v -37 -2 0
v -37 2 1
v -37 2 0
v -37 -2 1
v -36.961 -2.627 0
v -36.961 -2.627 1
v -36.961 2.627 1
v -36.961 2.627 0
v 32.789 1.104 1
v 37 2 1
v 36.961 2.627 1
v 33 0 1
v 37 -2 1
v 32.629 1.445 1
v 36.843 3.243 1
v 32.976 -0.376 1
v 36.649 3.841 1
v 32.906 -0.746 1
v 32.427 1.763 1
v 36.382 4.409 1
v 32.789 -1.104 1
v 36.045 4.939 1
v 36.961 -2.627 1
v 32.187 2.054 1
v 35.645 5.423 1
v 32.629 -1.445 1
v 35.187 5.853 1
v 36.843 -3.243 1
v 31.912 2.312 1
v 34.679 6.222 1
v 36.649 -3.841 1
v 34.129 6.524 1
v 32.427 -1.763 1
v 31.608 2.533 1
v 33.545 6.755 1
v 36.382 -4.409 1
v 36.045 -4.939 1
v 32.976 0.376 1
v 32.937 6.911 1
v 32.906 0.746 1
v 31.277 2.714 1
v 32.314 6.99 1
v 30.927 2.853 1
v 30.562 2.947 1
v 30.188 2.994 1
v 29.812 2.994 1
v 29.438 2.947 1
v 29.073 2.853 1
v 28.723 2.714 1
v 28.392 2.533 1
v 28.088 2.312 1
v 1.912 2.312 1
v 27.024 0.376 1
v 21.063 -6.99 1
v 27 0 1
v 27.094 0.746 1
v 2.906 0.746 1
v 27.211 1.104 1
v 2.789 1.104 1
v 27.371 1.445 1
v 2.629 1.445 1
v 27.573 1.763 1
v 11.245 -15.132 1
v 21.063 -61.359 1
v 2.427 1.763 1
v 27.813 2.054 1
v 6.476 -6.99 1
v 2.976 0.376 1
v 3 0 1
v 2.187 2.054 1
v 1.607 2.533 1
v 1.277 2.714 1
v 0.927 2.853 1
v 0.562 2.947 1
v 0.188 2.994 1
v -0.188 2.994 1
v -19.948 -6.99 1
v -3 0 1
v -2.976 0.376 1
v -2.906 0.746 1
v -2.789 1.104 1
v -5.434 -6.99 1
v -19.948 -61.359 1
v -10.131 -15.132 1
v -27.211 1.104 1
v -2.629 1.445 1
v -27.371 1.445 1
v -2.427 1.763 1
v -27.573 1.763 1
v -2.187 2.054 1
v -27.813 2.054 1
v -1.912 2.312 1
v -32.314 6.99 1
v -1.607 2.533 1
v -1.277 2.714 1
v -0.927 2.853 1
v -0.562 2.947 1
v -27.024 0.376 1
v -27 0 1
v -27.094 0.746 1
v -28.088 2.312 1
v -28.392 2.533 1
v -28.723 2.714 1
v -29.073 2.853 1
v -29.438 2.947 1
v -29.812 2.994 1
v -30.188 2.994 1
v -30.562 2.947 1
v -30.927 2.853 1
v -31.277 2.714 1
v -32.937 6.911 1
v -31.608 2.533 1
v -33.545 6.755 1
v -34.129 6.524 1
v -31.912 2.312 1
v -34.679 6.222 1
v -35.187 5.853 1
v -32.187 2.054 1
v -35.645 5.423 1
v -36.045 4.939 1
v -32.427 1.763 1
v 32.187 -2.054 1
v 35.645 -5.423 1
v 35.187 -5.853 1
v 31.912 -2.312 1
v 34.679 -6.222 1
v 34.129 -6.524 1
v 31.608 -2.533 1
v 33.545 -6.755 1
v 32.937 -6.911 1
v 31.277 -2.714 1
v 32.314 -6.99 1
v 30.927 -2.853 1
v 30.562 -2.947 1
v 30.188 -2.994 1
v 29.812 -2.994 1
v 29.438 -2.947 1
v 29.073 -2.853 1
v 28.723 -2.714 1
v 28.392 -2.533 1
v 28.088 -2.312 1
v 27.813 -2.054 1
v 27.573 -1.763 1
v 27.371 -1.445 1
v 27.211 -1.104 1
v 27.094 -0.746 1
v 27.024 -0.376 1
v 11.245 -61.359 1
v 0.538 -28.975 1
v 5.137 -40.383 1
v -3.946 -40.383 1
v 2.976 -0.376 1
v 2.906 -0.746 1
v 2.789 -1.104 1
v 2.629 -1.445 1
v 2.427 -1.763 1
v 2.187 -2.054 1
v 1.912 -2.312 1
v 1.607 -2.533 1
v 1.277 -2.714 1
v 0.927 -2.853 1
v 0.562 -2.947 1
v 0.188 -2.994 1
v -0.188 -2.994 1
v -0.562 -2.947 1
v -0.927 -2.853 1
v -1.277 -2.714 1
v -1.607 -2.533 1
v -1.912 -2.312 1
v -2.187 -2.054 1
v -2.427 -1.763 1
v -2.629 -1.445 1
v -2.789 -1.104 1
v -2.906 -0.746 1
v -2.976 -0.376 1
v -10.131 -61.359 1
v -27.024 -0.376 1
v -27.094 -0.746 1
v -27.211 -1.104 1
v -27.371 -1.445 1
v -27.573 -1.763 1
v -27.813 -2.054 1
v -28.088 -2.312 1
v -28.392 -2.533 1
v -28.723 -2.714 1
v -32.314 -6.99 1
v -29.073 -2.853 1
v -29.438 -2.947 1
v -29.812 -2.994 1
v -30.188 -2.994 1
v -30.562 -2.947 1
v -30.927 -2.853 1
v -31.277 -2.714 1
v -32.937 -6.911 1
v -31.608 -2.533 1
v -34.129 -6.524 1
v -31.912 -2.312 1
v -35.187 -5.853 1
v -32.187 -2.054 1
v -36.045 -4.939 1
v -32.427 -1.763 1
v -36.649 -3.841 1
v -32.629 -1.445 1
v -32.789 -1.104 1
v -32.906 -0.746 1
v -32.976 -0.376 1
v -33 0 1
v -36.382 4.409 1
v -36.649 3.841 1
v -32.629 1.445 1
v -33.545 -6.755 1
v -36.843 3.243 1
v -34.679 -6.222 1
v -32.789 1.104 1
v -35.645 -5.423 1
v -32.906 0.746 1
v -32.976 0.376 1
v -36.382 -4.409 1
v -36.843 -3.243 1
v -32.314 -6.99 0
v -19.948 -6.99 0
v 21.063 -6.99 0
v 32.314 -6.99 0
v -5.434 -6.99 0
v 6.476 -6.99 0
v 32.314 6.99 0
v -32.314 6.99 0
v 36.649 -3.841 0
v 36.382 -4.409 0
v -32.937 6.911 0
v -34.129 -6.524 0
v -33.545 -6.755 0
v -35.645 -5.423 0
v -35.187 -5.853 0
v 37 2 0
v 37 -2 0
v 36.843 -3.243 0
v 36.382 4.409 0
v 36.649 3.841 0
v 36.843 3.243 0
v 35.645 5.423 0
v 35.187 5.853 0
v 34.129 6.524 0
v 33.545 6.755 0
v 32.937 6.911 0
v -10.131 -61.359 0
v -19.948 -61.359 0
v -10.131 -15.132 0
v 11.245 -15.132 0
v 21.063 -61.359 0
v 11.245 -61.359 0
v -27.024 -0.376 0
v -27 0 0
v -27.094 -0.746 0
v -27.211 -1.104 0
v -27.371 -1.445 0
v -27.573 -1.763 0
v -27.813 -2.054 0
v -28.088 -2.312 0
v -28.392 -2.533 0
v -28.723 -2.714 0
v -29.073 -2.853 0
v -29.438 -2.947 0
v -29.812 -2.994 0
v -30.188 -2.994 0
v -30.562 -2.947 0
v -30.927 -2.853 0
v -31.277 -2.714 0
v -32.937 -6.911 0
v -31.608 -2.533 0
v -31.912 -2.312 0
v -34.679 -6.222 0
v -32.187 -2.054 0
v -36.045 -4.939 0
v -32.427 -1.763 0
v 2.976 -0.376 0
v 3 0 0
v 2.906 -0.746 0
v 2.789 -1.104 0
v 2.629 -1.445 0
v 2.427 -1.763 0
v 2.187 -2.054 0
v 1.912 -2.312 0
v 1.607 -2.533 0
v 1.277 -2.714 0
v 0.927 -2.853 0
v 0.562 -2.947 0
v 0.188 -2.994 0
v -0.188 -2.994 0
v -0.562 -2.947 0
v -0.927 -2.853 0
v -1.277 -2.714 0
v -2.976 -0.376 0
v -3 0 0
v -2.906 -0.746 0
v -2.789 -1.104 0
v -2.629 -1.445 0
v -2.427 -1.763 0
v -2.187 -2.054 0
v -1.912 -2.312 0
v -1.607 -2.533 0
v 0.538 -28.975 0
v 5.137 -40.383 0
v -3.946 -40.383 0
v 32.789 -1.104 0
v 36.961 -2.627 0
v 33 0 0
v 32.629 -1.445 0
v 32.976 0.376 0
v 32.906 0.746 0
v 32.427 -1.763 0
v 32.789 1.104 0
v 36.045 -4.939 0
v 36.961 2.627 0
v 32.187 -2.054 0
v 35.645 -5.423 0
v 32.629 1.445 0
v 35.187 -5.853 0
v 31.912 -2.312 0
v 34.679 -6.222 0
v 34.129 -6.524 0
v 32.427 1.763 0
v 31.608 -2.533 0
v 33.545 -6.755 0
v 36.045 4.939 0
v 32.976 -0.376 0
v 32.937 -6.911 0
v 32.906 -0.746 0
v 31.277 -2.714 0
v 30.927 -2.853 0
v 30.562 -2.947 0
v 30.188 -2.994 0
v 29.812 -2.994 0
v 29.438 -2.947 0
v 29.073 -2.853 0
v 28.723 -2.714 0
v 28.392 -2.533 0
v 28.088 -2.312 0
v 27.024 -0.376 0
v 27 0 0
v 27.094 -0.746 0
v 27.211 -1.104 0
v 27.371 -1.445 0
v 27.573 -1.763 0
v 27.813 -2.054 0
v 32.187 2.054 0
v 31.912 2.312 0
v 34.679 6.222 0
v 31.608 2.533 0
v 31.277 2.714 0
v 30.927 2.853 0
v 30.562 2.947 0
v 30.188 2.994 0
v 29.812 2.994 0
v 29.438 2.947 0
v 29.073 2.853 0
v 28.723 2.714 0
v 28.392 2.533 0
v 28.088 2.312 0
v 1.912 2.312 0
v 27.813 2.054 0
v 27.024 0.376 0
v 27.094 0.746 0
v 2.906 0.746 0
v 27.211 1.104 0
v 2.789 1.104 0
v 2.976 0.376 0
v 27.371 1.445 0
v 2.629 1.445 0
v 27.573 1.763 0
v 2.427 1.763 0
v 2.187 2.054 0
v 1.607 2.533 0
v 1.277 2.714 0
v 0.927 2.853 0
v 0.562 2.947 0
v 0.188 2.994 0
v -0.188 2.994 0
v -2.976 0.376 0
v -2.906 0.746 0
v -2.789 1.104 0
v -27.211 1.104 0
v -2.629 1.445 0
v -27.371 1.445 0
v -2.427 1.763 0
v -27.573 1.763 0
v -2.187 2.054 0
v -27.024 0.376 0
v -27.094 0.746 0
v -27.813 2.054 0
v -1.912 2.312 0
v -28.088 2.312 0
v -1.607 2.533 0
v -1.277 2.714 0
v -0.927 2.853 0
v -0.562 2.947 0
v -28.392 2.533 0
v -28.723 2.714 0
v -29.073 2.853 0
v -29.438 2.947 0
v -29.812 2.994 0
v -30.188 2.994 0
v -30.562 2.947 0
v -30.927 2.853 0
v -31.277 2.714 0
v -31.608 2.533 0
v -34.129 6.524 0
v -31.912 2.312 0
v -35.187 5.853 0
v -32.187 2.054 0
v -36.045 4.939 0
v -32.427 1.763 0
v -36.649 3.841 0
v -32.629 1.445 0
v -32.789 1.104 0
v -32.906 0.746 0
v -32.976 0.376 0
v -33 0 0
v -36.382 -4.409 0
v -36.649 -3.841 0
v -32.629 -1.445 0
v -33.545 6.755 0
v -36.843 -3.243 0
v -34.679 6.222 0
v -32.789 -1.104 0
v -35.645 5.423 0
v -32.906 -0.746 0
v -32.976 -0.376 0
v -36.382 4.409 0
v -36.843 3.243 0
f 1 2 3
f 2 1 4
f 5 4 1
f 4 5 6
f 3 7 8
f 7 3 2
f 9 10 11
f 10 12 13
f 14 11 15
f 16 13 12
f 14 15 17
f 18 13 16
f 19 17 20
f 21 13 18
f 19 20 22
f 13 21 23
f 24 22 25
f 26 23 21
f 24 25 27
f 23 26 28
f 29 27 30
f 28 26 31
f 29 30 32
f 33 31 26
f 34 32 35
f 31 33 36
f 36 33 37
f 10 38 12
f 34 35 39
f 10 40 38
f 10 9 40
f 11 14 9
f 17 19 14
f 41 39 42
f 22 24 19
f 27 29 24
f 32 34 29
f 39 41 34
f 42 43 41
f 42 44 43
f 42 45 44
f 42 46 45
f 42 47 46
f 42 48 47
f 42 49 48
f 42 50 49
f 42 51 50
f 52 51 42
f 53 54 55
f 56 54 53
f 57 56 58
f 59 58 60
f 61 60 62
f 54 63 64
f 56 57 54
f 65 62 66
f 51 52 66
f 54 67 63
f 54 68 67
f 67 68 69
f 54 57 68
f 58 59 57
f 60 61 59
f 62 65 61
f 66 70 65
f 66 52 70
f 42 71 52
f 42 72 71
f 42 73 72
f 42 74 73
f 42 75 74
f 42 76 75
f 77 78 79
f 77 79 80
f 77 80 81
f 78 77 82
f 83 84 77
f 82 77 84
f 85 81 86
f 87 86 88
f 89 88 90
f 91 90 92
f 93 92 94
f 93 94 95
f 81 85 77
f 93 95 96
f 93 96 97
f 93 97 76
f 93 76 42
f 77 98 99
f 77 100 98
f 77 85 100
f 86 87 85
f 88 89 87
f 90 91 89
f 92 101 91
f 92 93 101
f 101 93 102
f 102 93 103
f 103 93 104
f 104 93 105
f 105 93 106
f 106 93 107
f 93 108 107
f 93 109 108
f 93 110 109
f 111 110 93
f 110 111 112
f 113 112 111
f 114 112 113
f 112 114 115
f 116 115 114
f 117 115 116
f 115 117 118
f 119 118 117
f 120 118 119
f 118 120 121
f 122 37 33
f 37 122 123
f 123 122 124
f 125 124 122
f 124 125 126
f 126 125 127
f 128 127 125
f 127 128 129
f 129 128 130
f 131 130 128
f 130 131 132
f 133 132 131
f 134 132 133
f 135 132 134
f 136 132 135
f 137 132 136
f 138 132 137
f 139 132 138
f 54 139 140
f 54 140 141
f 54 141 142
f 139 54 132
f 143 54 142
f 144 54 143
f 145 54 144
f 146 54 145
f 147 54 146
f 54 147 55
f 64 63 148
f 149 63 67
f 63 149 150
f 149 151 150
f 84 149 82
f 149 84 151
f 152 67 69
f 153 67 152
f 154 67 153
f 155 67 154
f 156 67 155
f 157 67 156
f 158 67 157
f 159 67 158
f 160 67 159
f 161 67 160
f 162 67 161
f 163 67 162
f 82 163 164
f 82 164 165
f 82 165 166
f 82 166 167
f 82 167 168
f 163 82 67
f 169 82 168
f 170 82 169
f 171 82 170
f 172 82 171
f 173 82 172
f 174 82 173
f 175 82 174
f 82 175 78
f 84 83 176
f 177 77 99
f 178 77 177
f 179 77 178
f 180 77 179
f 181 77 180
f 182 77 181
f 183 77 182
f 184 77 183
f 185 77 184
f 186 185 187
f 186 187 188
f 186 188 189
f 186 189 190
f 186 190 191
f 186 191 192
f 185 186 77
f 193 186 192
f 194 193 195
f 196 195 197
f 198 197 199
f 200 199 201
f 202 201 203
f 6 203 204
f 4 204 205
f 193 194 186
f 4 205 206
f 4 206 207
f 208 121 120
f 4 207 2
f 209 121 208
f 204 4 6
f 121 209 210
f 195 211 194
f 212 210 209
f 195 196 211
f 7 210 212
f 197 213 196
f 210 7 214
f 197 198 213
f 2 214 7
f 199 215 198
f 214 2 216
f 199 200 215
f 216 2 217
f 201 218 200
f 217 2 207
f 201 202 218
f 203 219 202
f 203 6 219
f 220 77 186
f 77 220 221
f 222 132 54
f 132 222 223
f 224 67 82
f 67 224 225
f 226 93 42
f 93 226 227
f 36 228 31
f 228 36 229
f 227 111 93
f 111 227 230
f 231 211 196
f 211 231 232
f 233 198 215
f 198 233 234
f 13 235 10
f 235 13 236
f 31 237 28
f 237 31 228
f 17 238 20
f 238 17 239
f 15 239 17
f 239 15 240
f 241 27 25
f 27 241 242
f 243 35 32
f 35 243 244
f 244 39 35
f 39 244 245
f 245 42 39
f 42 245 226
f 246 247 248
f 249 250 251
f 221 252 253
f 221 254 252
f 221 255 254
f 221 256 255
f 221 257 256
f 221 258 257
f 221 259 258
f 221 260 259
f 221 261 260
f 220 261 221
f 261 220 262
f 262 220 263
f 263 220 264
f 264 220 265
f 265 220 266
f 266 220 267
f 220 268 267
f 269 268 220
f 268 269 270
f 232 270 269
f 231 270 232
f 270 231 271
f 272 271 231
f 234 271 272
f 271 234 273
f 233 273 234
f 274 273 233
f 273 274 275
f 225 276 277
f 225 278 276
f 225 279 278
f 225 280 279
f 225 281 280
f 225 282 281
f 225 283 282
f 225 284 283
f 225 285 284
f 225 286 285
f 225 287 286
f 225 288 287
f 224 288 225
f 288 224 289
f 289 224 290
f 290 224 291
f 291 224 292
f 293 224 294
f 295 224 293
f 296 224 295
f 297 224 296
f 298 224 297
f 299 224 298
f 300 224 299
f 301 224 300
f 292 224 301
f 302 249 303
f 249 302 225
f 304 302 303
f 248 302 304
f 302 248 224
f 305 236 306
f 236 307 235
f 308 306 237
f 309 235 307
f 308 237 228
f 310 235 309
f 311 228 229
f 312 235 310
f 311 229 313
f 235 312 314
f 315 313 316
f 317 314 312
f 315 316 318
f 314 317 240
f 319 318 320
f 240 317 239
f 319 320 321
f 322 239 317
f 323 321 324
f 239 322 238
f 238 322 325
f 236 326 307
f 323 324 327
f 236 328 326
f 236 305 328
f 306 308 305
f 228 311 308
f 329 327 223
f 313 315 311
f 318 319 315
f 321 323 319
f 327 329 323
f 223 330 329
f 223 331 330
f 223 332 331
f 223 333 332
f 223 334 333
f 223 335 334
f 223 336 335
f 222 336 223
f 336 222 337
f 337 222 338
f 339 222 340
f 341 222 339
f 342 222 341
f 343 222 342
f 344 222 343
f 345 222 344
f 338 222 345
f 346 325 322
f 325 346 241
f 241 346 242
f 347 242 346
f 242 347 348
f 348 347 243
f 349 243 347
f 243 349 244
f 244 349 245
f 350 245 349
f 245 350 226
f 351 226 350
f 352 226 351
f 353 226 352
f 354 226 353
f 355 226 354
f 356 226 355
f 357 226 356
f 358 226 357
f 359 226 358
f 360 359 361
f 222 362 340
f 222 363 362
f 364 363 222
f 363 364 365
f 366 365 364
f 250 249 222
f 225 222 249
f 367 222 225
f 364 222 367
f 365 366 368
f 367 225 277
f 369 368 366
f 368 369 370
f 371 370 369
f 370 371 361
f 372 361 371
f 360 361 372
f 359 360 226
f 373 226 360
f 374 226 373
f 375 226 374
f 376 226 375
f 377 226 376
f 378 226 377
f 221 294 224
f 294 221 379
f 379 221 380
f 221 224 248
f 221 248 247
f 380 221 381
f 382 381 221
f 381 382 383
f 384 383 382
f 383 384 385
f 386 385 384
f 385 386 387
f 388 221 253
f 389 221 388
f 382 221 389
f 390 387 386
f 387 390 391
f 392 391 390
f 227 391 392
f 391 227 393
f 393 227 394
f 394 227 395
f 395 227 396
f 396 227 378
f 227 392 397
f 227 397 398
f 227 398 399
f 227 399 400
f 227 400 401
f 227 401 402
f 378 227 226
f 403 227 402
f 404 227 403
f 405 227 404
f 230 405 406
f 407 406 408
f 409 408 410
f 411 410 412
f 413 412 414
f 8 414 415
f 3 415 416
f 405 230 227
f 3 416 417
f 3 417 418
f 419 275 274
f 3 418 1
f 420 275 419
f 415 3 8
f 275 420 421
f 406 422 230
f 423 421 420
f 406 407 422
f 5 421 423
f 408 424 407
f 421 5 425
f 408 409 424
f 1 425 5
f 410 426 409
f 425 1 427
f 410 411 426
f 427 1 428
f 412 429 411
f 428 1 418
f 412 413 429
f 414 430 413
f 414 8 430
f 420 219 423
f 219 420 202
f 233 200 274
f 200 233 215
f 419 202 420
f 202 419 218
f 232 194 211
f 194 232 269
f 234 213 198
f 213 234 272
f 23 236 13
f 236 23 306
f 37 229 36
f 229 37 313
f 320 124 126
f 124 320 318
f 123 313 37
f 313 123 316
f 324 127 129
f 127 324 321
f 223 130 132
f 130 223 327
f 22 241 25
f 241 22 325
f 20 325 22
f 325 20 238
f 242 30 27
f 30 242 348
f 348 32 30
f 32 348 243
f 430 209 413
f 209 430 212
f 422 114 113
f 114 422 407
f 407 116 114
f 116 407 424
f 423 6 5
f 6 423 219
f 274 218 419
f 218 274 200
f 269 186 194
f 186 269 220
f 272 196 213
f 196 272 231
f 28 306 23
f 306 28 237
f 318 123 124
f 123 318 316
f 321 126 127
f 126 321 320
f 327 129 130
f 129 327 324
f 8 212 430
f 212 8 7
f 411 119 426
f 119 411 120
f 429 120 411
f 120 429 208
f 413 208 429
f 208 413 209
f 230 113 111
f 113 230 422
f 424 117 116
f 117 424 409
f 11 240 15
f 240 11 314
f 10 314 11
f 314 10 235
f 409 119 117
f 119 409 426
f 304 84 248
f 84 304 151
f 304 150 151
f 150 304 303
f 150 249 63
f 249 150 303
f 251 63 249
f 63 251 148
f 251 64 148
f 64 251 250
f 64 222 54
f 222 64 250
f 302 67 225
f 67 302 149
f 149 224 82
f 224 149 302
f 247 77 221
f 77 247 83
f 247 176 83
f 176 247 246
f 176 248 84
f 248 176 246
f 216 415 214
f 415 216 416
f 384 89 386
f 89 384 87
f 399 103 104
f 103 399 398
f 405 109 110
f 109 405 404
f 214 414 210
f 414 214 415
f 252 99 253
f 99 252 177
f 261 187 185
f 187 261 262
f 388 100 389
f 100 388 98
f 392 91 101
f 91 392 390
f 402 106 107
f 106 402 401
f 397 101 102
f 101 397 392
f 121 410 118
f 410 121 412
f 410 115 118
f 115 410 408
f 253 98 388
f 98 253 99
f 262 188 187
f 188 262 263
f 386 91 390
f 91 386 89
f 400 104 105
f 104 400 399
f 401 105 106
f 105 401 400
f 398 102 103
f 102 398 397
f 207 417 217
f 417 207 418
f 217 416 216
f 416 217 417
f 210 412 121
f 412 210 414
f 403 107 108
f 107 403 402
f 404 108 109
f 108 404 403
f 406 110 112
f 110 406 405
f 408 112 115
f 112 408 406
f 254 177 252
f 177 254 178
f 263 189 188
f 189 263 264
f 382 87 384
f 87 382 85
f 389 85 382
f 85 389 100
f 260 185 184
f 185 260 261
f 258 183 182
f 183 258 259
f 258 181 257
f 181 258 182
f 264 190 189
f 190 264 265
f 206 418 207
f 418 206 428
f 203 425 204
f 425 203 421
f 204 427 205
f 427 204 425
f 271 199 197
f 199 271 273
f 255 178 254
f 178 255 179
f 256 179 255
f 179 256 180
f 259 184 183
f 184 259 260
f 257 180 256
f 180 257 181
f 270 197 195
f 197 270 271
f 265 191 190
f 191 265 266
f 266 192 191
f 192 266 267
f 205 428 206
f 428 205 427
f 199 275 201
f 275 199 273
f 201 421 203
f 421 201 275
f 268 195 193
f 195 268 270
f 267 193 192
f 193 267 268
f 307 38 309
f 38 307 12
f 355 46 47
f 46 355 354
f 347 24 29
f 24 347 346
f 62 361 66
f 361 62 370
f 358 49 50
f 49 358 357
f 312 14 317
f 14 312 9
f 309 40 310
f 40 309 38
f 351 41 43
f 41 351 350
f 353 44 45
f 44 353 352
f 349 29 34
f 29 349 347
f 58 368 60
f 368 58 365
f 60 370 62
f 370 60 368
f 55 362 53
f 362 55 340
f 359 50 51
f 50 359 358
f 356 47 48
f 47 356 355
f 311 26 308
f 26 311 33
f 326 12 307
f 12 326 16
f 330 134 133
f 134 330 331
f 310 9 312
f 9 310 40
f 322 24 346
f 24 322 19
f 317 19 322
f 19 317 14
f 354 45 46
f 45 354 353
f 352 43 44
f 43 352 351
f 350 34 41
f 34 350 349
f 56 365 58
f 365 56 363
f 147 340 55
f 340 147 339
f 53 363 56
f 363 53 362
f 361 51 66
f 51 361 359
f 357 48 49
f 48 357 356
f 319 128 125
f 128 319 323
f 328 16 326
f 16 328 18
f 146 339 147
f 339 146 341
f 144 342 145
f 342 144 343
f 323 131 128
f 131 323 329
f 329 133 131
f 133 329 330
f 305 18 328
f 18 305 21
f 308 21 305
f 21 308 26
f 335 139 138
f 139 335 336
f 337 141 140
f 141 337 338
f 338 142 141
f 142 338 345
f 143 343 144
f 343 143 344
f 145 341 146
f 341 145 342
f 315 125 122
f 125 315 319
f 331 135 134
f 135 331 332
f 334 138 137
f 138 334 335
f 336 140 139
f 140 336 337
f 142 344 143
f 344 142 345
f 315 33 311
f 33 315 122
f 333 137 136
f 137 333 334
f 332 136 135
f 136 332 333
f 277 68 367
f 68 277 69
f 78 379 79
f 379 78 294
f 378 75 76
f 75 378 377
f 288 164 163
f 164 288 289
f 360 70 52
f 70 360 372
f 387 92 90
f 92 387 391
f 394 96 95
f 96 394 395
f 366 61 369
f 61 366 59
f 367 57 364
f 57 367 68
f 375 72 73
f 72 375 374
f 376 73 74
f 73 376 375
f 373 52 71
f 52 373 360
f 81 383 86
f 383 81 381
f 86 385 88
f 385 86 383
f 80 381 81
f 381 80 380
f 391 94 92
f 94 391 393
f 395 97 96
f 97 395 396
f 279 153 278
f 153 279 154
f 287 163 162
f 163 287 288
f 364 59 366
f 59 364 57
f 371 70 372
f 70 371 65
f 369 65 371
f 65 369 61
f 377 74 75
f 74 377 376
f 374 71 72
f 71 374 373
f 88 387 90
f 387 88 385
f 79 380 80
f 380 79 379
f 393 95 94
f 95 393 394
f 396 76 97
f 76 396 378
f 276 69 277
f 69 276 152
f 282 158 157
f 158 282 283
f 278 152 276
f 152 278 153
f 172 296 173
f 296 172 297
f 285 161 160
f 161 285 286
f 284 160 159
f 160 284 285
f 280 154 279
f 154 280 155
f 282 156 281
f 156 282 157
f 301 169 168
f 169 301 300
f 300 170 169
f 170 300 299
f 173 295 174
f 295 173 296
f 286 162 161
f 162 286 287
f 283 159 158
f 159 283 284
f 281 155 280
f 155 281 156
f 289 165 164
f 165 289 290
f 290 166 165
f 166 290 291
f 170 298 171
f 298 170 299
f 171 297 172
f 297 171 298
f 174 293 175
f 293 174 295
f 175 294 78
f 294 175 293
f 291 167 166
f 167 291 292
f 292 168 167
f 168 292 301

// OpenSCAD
$fn = 50;


difference() {
	union() {
		translate(v = [0, 0, 0]) {
			rotate(a = [0, 0, 0]) {
				hull() {
					translate(v = [-32.0000000000, 2.0000000000, 0]) {
						rotate(a = [0, 0, 0]) {
							translate(v = [0, 0, 0]) {
								rotate(a = [0, 0, 0]) {
									cylinder(h = 1, r = 5);
								}
							}
						}
					}
					translate(v = [32.0000000000, 2.0000000000, 0]) {
						rotate(a = [0, 0, 0]) {
							translate(v = [0, 0, 0]) {
								rotate(a = [0, 0, 0]) {
									cylinder(h = 1, r = 5);
								}
							}
						}
					}
					translate(v = [-32.0000000000, -2.0000000000, 0]) {
						rotate(a = [0, 0, 0]) {
							translate(v = [0, 0, 0]) {
								rotate(a = [0, 0, 0]) {
									cylinder(h = 1, r = 5);
								}
							}
						}
					}
					translate(v = [32.0000000000, -2.0000000000, 0]) {
						rotate(a = [0, 0, 0]) {
							translate(v = [0, 0, 0]) {
								rotate(a = [0, 0, 0]) {
									cylinder(h = 1, r = 5);
								}
							}
						}
					}
				}
			}
		}
		translate(v = [0, -5, 0]) {
			rotate(a = [0, 0, 0]) {
				linear_extrude(height = 1) {
					text(font = "DejaVu Sans Mono:style=Bold", halign = "center", size = 57.0000000000, text = "M", valign = "top");
				}
			}
		}
	}
	union() {
		translate(v = [-30.0000000000, 0.0000000000, -125.0000000000]) {
			rotate(a = [0, 0, 0]) {
				cylinder(h = 250, r = 3.0000000000);
			}
		}
		translate(v = [30.0000000000, 0.0000000000, -125.0000000000]) {
			rotate(a = [0, 0, 0]) {
				cylinder(h = 250, r = 3.0000000000);
			}
		}
		translate(v = [30.0000000000, 0.0000000000, -125.0000000000]) {
			rotate(a = [0, 0, 0]) {
				cylinder(h = 250, r = 3.0000000000);
			}
		}
		translate(v = [0, 0, -125.0000000000]) {
			rotate(a = [0, 0, 0]) {
				cylinder(h = 250, r = 3.0000000000);
			}
		}
	}
}
